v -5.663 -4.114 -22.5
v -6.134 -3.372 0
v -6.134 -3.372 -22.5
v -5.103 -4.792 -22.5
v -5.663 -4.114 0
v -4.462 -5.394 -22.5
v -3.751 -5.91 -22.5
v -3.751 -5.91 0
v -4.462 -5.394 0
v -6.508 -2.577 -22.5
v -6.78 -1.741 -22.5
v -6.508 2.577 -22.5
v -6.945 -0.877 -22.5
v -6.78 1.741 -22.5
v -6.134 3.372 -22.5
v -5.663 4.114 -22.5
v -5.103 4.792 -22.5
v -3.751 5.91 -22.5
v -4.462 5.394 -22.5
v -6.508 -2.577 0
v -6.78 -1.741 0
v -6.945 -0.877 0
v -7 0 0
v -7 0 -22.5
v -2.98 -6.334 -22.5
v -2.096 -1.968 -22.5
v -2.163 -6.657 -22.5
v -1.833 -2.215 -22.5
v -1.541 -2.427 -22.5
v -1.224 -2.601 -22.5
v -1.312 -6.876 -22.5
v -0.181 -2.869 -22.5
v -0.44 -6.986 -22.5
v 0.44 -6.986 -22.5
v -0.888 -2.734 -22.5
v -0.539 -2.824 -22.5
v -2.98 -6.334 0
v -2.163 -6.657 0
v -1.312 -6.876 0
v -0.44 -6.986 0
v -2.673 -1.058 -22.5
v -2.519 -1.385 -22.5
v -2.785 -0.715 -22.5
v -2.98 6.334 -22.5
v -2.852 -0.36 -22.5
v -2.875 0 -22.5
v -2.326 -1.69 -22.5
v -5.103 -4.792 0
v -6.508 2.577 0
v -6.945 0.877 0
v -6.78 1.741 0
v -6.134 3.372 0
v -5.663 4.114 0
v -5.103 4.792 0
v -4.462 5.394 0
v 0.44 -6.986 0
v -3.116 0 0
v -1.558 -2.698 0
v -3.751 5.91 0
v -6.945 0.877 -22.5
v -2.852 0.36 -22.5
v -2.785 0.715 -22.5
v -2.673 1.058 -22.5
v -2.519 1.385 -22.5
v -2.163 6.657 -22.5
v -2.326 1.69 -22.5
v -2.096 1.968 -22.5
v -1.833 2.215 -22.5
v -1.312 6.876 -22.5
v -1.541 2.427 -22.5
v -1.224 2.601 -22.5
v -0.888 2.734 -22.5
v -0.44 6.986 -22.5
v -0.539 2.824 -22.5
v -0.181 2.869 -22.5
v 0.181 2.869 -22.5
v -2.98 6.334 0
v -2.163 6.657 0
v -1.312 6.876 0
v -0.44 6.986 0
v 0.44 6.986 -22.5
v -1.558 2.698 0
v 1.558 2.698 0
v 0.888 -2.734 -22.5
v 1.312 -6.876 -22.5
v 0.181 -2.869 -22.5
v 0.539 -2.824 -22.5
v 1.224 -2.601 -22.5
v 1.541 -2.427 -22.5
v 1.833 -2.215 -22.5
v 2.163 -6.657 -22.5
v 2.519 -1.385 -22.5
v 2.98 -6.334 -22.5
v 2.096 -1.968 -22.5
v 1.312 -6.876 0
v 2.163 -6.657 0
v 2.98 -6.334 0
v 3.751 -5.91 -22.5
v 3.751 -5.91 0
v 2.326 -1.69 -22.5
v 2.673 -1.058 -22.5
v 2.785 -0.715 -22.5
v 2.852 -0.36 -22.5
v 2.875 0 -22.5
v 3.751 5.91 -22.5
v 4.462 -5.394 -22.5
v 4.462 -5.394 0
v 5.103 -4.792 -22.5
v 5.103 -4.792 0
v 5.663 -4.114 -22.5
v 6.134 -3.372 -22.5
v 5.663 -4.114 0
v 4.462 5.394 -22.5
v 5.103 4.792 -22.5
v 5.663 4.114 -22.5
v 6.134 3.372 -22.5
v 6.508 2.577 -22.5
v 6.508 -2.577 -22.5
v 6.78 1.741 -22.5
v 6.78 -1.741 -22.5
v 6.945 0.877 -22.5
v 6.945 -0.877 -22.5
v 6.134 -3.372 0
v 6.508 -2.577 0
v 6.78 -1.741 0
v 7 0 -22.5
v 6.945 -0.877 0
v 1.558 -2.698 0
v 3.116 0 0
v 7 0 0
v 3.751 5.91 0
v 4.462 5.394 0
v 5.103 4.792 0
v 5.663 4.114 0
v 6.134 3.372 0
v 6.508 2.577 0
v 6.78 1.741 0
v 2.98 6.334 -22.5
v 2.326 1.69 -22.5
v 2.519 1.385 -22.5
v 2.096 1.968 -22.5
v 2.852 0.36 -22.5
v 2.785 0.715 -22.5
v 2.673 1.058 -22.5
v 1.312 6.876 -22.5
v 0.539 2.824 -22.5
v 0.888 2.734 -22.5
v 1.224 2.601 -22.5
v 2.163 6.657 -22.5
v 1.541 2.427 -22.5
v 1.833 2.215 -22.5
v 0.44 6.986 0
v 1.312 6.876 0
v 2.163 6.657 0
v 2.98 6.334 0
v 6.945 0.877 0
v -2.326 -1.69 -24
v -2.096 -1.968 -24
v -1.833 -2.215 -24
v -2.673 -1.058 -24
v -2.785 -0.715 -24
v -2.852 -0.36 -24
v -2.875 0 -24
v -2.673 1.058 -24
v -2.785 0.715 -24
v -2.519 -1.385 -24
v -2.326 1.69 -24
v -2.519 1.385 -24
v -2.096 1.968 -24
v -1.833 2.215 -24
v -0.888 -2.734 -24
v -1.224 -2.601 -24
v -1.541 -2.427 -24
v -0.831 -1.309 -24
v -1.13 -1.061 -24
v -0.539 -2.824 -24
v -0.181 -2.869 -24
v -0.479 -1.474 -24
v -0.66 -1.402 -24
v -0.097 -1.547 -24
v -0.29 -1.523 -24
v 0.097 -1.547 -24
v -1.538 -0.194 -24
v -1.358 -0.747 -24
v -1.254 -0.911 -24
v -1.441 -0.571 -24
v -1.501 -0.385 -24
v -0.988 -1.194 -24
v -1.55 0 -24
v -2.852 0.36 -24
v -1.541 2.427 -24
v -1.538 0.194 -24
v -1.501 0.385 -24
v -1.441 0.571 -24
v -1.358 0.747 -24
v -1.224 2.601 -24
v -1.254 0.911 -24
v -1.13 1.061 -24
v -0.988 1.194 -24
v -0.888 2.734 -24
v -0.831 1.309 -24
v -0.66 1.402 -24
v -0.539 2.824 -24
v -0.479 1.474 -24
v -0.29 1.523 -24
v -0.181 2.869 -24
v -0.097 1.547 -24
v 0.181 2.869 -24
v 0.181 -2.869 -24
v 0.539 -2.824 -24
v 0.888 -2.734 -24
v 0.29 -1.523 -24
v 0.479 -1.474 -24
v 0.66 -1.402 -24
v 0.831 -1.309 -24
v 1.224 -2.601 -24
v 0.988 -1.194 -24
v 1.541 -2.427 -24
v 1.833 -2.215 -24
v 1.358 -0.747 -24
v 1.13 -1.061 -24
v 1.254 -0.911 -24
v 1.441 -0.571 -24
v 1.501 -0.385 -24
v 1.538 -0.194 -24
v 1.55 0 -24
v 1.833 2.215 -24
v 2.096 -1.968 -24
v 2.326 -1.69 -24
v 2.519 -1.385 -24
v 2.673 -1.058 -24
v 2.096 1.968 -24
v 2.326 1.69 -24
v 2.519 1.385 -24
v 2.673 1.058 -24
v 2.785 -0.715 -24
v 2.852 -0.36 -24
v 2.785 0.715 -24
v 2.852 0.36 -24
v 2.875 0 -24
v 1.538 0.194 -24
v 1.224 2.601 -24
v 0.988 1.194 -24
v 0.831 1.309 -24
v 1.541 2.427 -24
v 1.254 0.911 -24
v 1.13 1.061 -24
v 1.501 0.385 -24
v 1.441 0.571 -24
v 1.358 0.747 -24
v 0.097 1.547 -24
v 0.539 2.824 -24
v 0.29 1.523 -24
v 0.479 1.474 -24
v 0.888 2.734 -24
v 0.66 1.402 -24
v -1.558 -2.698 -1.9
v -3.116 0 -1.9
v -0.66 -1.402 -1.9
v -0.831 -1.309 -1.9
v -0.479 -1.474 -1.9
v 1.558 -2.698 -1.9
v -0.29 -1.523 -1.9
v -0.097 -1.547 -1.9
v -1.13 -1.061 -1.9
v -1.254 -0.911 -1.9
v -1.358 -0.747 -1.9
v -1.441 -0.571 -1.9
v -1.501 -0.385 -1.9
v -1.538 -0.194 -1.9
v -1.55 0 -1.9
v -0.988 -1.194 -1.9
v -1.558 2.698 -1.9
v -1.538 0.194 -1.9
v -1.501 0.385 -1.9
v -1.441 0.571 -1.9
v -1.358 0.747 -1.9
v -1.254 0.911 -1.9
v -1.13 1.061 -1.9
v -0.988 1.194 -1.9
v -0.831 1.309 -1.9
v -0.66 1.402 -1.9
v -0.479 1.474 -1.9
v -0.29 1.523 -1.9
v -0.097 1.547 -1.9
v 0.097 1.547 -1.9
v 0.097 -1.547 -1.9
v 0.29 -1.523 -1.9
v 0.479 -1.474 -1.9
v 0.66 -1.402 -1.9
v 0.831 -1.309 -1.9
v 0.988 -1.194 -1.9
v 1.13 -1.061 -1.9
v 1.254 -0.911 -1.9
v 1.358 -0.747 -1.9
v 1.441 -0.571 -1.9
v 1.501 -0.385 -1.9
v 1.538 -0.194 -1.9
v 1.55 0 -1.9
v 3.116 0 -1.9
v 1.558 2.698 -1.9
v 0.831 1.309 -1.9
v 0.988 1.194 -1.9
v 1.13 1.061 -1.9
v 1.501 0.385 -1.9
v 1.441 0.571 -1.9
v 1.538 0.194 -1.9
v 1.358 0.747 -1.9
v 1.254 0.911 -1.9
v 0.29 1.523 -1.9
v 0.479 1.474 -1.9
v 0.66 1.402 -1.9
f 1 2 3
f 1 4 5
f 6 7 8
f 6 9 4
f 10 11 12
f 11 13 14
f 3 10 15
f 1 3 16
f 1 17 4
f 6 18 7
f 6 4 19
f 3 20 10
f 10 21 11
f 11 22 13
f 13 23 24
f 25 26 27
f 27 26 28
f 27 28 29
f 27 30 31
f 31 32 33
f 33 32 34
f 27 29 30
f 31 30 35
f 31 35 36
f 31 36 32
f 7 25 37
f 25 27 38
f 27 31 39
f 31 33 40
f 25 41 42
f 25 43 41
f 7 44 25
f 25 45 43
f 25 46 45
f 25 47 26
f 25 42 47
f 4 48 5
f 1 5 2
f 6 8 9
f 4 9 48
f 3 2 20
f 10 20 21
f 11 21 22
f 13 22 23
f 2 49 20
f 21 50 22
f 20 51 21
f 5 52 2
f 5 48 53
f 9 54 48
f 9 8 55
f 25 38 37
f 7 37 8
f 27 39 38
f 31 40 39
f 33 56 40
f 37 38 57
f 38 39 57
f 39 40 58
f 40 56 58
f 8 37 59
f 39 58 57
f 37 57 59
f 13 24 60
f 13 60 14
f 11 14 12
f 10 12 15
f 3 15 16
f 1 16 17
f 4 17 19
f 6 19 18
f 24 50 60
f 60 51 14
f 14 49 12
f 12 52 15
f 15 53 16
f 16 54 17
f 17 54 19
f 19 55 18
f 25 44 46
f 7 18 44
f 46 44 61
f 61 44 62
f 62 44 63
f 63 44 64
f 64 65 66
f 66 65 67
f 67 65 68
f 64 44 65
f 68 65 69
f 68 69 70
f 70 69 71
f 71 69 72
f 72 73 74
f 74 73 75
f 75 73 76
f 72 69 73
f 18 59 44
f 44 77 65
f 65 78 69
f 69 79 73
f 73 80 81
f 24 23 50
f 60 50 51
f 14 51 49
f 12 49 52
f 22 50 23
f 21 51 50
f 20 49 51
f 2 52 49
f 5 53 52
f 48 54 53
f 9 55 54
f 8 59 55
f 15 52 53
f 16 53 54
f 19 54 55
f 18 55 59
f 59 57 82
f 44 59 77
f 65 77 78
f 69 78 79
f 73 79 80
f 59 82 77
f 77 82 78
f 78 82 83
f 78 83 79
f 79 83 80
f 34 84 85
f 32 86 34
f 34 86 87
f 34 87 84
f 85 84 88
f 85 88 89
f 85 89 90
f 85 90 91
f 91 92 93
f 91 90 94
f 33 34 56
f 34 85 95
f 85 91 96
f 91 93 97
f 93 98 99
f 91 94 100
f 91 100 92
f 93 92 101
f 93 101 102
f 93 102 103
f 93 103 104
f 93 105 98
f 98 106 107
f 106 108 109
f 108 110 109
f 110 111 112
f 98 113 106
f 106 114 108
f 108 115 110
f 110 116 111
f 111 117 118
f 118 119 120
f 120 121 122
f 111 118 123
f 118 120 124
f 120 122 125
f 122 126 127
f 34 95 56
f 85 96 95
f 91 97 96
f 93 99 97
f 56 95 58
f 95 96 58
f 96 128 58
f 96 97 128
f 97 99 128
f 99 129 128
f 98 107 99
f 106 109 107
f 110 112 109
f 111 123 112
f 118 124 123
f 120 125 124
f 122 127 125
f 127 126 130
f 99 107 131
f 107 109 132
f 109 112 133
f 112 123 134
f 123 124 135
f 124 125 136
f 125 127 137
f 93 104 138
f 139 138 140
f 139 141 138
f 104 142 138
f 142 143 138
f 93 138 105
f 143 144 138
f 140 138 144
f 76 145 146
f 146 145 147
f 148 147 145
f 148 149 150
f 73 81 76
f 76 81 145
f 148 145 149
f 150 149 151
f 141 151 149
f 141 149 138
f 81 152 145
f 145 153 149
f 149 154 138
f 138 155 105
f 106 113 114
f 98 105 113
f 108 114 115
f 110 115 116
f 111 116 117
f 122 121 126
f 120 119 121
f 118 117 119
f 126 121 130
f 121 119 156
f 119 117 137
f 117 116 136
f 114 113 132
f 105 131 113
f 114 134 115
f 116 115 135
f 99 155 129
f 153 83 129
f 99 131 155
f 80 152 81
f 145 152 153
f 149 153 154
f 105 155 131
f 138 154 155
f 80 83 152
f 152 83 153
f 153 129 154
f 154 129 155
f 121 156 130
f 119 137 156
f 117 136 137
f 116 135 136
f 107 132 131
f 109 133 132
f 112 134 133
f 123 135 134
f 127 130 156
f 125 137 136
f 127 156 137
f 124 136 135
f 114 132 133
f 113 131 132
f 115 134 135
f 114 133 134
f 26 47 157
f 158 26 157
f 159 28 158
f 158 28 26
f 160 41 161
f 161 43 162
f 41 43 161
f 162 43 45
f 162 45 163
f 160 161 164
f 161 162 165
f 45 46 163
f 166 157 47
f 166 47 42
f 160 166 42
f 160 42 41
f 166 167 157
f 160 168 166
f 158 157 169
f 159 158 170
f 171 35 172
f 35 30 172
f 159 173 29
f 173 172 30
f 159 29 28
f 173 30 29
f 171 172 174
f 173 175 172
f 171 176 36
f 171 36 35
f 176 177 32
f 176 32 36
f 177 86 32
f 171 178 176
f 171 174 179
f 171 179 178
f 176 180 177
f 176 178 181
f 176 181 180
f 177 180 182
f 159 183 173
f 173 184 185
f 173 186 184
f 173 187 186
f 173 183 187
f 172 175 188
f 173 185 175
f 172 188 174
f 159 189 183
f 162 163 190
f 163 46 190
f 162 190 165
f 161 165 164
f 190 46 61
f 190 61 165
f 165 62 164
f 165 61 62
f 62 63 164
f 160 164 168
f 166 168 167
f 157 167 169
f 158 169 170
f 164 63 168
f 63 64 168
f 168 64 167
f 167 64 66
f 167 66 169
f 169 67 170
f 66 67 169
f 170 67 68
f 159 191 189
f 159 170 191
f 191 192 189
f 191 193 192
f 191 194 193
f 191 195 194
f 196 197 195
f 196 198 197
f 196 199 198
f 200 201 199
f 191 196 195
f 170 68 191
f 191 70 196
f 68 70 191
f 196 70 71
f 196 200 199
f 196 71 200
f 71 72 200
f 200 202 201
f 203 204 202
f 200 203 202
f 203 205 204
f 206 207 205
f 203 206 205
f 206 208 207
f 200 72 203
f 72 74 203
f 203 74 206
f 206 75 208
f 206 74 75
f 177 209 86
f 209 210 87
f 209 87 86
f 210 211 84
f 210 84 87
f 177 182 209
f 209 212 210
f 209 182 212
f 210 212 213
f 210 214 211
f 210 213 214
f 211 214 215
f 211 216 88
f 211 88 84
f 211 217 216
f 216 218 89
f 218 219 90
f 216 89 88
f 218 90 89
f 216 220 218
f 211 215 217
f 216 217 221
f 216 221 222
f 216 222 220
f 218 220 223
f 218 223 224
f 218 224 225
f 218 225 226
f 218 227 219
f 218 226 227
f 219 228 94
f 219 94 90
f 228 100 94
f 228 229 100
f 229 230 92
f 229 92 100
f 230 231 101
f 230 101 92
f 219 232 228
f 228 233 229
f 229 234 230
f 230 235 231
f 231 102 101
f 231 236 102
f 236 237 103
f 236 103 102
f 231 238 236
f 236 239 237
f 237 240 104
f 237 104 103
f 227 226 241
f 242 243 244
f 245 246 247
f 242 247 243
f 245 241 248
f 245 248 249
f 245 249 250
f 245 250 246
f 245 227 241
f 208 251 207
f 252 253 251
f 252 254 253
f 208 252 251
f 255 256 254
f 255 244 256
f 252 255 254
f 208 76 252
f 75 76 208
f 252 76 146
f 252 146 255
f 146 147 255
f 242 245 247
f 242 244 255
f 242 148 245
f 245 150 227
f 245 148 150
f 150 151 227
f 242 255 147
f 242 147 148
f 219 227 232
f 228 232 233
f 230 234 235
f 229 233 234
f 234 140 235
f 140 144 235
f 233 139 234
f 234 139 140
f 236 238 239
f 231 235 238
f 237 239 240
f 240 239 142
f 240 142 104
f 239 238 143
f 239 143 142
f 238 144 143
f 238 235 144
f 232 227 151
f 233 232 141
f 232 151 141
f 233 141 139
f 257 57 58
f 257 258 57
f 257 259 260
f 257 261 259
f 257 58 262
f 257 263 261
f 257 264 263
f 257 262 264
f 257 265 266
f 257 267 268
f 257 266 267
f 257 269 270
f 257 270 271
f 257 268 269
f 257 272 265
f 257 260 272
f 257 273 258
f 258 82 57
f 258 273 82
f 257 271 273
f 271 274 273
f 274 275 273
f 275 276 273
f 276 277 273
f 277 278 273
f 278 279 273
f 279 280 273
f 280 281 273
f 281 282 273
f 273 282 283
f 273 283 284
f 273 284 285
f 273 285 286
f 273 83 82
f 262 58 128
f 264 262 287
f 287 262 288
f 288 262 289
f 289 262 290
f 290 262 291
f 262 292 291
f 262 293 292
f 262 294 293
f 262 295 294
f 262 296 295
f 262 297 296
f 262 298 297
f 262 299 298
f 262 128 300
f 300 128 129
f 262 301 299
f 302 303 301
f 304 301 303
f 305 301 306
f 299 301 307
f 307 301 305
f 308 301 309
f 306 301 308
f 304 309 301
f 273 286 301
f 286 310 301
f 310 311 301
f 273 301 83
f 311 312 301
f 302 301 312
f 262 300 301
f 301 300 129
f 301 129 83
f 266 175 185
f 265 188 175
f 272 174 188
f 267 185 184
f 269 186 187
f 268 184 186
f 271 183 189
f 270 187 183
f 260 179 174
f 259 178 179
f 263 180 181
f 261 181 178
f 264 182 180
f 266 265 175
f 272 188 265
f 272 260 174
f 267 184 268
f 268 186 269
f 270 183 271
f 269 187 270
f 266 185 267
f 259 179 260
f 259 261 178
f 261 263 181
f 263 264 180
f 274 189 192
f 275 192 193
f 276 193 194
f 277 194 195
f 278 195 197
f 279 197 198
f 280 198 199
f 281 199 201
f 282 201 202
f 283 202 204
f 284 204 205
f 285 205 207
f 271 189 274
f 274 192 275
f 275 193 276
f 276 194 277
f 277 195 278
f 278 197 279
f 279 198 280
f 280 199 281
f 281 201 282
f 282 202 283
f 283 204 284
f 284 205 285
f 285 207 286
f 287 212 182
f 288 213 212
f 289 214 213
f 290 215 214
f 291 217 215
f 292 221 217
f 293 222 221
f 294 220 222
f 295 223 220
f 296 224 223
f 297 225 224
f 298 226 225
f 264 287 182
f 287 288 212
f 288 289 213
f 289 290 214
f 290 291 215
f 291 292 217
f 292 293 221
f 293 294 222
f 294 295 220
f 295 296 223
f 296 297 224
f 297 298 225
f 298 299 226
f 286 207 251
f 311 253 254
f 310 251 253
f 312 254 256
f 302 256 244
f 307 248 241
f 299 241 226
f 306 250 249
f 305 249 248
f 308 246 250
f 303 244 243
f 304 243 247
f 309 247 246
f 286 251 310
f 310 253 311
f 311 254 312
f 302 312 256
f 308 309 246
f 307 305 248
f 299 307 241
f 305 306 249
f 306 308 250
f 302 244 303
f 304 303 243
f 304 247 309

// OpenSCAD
$fn = 50;


difference() {
	union() {
		translate(v = [0, 0, -22.5000000000]) {
			cylinder(h = 22.5000000000, r = 7.0000000000);
		}
		#translate(v = [0, 0, -24.0000000000]) {
			cylinder(h = 24, r = 2.8750000000);
		}
	}
	union() {
		translate(v = [0, 0, 0]) {
			rotate(a = [0, 0, 0]) {
				difference() {
					union() {
						translate(v = [0, 0, -1.9000000000]) {
							linear_extrude(height = 1.9000000000) {
								polygon(points = [[3.1158000000, 0.0000000000], [1.5579000000, 2.6983619531], [-1.5579000000, 2.6983619531], [-3.1158000000, 0.0000000000], [-1.5579000000, -2.6983619531], [1.5579000000, -2.6983619531]]);
							}
						}
					}
					union();
				}
			}
		}
		#translate(v = [0, 0, -100.0000000000]) {
			cylinder(h = 200, r = 1.5500000000);
		}
	}
}
